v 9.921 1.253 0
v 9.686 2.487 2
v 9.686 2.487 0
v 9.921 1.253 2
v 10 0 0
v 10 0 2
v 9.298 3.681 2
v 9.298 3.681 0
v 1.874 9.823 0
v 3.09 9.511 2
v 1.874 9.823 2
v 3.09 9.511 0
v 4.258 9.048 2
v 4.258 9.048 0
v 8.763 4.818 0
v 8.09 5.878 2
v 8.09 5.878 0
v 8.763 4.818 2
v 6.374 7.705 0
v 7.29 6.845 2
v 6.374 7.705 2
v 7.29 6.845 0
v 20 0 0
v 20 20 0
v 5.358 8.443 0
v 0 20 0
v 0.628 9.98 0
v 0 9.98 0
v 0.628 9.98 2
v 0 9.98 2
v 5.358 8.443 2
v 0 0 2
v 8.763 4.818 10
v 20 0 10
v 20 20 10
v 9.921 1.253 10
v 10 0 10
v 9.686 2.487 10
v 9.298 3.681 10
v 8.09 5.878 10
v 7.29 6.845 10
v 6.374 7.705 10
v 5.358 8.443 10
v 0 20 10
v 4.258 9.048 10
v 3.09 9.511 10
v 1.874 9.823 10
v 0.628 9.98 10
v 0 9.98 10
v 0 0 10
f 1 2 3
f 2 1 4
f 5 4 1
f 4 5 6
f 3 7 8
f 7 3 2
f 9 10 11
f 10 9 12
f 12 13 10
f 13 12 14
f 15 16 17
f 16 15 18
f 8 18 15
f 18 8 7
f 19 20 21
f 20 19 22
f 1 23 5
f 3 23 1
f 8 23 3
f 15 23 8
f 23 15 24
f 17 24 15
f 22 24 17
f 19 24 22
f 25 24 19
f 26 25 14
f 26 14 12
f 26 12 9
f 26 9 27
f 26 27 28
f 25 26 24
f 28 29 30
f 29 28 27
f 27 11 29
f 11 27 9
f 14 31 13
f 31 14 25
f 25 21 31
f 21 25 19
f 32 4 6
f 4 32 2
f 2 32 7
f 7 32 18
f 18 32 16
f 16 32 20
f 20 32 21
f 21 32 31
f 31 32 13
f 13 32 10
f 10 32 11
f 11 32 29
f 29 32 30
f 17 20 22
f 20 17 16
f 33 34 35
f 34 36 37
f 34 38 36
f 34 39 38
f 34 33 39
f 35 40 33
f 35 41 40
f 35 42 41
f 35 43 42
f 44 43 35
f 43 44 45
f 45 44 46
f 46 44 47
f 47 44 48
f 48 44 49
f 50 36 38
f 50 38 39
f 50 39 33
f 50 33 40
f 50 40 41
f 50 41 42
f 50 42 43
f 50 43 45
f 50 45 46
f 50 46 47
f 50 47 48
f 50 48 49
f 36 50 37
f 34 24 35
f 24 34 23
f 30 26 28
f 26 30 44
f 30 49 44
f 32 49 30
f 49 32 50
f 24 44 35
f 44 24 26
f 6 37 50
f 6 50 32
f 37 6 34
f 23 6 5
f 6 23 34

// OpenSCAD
module compressed_pyramid(height, base_width, base_depth, layer_height, layer_depth) {
  difference() {
    cube([base_width, base_depth, height]);

    for (i = [0:layer_height]) {
      translate([0, 0, i * height]) {
        cylinder(h = layer_depth, r = base_width / 2, $fn = 50);
      }
    }
  }
}

compressed_pyramid(height = 10, base_width = 20, base_depth = 20, layer_height = 5, layer_depth = 2);
